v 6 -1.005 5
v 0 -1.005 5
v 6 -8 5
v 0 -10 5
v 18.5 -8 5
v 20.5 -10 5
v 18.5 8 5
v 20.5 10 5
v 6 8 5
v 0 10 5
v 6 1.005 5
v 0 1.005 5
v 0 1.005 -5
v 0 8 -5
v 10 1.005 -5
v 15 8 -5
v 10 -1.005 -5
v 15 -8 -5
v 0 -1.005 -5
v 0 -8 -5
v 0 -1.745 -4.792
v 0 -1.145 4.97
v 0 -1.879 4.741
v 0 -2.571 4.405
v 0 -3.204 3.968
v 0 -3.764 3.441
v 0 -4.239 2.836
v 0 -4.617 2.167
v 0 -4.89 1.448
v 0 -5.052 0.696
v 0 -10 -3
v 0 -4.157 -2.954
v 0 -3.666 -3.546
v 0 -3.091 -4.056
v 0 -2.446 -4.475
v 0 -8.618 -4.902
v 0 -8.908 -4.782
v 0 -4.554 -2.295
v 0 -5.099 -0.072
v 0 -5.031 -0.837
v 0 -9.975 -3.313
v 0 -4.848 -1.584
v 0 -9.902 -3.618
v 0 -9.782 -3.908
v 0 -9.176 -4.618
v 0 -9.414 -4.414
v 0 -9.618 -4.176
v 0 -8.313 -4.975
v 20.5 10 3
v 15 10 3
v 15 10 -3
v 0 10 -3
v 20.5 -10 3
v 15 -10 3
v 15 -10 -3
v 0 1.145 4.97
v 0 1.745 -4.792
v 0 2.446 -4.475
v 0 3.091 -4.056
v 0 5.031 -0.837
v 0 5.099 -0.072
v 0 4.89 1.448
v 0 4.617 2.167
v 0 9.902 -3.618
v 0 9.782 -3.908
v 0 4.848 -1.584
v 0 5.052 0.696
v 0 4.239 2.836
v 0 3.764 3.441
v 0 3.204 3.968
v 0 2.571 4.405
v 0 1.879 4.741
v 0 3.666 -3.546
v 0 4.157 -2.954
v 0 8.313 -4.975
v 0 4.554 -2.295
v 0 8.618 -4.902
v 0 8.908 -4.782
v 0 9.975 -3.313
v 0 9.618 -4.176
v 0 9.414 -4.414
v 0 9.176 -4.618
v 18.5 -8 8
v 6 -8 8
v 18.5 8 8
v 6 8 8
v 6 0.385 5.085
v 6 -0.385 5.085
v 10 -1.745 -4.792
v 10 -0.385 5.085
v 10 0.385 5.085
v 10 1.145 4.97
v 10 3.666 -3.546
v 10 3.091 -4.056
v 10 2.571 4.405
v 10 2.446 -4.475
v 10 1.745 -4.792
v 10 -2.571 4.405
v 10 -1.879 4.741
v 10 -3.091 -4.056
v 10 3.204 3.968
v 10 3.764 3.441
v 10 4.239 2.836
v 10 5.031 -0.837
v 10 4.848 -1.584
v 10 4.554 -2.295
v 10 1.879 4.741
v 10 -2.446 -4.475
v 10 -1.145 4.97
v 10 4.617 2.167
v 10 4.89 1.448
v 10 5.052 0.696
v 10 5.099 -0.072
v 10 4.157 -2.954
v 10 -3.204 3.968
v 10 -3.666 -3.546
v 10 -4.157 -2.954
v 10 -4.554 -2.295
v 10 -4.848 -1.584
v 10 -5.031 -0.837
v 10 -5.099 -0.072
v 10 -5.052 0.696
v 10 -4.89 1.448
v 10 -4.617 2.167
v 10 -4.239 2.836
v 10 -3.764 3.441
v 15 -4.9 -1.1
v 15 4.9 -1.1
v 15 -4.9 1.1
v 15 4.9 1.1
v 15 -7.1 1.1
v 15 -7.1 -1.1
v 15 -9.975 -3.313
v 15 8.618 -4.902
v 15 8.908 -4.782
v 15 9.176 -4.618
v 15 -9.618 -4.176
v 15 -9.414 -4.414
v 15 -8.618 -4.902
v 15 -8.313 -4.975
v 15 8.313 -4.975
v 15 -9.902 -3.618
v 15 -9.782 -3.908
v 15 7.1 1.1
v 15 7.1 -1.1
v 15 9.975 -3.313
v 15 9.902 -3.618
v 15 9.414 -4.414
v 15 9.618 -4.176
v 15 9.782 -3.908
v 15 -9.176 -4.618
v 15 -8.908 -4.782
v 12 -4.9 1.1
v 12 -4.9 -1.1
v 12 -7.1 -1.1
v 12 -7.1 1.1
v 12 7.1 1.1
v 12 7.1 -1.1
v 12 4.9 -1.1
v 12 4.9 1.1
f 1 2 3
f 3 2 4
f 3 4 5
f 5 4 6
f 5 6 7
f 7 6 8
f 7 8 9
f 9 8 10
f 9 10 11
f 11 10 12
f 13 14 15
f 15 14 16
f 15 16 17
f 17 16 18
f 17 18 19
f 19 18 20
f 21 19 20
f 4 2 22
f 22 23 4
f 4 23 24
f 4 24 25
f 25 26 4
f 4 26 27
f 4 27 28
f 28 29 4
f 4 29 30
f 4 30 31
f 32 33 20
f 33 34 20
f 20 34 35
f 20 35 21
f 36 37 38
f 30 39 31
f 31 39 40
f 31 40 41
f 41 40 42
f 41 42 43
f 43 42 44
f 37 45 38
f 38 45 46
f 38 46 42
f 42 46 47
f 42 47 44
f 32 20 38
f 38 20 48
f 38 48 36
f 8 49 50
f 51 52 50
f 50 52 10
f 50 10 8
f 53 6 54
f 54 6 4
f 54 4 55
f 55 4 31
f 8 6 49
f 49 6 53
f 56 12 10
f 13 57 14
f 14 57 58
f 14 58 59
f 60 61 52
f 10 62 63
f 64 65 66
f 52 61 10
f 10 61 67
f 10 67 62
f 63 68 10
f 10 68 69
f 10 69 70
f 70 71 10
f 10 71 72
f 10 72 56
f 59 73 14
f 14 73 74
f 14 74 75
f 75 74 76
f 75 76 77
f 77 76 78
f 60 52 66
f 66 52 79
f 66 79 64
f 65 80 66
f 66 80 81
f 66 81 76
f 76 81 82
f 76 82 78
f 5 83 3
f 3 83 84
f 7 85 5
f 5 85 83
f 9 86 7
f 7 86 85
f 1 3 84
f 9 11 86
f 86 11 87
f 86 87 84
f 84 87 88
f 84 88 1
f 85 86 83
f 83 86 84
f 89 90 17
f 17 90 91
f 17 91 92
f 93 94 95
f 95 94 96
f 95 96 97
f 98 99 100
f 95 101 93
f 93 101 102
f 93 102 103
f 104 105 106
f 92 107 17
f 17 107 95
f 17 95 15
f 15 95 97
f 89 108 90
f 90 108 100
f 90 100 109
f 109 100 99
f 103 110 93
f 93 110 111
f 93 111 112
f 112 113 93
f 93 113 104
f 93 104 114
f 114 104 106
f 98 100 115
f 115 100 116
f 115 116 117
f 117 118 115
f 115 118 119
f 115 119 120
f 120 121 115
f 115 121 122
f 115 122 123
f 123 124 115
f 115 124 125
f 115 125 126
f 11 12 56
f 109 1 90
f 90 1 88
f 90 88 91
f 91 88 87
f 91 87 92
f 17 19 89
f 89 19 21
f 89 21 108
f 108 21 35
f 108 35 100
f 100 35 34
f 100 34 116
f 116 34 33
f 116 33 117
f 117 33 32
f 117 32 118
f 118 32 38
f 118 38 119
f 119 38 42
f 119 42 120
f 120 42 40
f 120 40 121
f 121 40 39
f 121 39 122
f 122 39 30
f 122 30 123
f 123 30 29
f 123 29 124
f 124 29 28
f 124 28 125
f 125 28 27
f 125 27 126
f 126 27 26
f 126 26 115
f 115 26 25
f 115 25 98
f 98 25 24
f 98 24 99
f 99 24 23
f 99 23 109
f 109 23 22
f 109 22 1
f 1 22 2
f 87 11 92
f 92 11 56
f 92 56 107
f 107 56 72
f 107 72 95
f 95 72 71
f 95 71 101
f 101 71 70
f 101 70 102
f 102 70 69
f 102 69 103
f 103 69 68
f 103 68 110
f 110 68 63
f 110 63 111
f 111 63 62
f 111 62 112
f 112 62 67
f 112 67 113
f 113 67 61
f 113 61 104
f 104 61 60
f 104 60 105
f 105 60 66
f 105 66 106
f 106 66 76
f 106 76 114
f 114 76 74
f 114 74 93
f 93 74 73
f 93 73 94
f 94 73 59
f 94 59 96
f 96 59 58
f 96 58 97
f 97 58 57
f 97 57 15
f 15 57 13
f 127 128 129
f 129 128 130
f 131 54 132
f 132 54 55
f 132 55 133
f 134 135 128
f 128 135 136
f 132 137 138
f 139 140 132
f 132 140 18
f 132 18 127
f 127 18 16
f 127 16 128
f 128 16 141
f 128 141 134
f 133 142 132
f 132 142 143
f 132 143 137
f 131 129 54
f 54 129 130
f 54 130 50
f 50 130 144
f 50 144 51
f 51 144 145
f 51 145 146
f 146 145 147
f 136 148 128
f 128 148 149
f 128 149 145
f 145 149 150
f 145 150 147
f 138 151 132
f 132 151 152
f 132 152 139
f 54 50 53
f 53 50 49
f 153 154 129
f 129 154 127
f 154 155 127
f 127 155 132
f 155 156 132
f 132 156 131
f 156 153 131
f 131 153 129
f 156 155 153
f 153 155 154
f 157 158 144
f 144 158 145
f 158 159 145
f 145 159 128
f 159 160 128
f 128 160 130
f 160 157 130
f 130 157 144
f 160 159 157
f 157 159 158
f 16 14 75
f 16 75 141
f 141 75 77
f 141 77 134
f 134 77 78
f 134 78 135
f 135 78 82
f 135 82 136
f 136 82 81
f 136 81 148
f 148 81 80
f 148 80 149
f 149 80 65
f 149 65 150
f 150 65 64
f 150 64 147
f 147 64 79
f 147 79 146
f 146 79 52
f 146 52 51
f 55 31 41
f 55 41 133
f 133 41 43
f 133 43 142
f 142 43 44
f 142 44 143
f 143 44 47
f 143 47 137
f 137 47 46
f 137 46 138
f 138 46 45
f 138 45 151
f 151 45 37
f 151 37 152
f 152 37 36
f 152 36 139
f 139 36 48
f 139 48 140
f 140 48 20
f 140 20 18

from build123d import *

# Parameters (mm, degrees)
SKETCH1_W           = 20
SKETCH1_H           = 10
BOSS_EXTRUDE1_DEPTH = 20.5
SKETCH5_W           = 16
SKETCH5_H           = 12.5
BOSS_EXTRUDE2_DEPTH = 8
SKETCH2_R           = 5.1
CUT_EXTRUDE3_DEPTH  = 10
SKETCH6_W           = 5.5
SKETCH6_H           = 20
CUT_EXTRUDE4_DEPTH  = 8
SKETCH7_W           = 2.2
SKETCH7_H           = 2.2
CUT_EXTRUDE5_DEPTH  = 3
FILLET1_R           = 2


with BuildPart() as part:
    # Sketch1 → Boss-Extrude1 (new body)
    with BuildSketch(Plane.YZ):
        Rectangle(SKETCH1_W, SKETCH1_H)
    extrude(amount=BOSS_EXTRUDE1_DEPTH)

    # Sketch5 → Boss-Extrude2 (add)
    with BuildSketch(Plane(origin=(0, 0, 0), x_dir=(0, 1, 0), z_dir=(0, 0, 1))):
        with Locations((0, -12.25)):
            Rectangle(SKETCH5_W, SKETCH5_H)
    extrude(amount=BOSS_EXTRUDE2_DEPTH)

    # Sketch2 → Cut-Extrude3 (cut)
    with BuildSketch(Plane.YZ):
        Circle(SKETCH2_R)
    extrude(amount=CUT_EXTRUDE3_DEPTH, mode=Mode.SUBTRACT)

    # Sketch6 → Cut-Extrude4 (cut)
    with BuildSketch(Plane(origin=(0, 0, -5), x_dir=(1, 0, 0), z_dir=(0, 0, -1))):
        with Locations((17.75, 0)):
            Rectangle(SKETCH6_W, SKETCH6_H)
    extrude(amount=-CUT_EXTRUDE4_DEPTH, mode=Mode.SUBTRACT)

    # Sketch7 → Cut-Extrude5 (cut)
    with BuildSketch(Plane.YZ.offset(15)):
        with Locations((6, 0)):
            Rectangle(SKETCH7_W, SKETCH7_H)
        with Locations((-6, 0)):
            Rectangle(SKETCH7_W, SKETCH7_H)
    extrude(amount=-CUT_EXTRUDE5_DEPTH, mode=Mode.SUBTRACT)

    # Fillet1
    fillet1_edges = [part.edges().sort_by_distance(p)[0] for p in [
        (7.5, -10, -5),
        (7.5, 10, -5),
    ]]
    fillet(fillet1_edges, radius=FILLET1_R)


solid = part.part
